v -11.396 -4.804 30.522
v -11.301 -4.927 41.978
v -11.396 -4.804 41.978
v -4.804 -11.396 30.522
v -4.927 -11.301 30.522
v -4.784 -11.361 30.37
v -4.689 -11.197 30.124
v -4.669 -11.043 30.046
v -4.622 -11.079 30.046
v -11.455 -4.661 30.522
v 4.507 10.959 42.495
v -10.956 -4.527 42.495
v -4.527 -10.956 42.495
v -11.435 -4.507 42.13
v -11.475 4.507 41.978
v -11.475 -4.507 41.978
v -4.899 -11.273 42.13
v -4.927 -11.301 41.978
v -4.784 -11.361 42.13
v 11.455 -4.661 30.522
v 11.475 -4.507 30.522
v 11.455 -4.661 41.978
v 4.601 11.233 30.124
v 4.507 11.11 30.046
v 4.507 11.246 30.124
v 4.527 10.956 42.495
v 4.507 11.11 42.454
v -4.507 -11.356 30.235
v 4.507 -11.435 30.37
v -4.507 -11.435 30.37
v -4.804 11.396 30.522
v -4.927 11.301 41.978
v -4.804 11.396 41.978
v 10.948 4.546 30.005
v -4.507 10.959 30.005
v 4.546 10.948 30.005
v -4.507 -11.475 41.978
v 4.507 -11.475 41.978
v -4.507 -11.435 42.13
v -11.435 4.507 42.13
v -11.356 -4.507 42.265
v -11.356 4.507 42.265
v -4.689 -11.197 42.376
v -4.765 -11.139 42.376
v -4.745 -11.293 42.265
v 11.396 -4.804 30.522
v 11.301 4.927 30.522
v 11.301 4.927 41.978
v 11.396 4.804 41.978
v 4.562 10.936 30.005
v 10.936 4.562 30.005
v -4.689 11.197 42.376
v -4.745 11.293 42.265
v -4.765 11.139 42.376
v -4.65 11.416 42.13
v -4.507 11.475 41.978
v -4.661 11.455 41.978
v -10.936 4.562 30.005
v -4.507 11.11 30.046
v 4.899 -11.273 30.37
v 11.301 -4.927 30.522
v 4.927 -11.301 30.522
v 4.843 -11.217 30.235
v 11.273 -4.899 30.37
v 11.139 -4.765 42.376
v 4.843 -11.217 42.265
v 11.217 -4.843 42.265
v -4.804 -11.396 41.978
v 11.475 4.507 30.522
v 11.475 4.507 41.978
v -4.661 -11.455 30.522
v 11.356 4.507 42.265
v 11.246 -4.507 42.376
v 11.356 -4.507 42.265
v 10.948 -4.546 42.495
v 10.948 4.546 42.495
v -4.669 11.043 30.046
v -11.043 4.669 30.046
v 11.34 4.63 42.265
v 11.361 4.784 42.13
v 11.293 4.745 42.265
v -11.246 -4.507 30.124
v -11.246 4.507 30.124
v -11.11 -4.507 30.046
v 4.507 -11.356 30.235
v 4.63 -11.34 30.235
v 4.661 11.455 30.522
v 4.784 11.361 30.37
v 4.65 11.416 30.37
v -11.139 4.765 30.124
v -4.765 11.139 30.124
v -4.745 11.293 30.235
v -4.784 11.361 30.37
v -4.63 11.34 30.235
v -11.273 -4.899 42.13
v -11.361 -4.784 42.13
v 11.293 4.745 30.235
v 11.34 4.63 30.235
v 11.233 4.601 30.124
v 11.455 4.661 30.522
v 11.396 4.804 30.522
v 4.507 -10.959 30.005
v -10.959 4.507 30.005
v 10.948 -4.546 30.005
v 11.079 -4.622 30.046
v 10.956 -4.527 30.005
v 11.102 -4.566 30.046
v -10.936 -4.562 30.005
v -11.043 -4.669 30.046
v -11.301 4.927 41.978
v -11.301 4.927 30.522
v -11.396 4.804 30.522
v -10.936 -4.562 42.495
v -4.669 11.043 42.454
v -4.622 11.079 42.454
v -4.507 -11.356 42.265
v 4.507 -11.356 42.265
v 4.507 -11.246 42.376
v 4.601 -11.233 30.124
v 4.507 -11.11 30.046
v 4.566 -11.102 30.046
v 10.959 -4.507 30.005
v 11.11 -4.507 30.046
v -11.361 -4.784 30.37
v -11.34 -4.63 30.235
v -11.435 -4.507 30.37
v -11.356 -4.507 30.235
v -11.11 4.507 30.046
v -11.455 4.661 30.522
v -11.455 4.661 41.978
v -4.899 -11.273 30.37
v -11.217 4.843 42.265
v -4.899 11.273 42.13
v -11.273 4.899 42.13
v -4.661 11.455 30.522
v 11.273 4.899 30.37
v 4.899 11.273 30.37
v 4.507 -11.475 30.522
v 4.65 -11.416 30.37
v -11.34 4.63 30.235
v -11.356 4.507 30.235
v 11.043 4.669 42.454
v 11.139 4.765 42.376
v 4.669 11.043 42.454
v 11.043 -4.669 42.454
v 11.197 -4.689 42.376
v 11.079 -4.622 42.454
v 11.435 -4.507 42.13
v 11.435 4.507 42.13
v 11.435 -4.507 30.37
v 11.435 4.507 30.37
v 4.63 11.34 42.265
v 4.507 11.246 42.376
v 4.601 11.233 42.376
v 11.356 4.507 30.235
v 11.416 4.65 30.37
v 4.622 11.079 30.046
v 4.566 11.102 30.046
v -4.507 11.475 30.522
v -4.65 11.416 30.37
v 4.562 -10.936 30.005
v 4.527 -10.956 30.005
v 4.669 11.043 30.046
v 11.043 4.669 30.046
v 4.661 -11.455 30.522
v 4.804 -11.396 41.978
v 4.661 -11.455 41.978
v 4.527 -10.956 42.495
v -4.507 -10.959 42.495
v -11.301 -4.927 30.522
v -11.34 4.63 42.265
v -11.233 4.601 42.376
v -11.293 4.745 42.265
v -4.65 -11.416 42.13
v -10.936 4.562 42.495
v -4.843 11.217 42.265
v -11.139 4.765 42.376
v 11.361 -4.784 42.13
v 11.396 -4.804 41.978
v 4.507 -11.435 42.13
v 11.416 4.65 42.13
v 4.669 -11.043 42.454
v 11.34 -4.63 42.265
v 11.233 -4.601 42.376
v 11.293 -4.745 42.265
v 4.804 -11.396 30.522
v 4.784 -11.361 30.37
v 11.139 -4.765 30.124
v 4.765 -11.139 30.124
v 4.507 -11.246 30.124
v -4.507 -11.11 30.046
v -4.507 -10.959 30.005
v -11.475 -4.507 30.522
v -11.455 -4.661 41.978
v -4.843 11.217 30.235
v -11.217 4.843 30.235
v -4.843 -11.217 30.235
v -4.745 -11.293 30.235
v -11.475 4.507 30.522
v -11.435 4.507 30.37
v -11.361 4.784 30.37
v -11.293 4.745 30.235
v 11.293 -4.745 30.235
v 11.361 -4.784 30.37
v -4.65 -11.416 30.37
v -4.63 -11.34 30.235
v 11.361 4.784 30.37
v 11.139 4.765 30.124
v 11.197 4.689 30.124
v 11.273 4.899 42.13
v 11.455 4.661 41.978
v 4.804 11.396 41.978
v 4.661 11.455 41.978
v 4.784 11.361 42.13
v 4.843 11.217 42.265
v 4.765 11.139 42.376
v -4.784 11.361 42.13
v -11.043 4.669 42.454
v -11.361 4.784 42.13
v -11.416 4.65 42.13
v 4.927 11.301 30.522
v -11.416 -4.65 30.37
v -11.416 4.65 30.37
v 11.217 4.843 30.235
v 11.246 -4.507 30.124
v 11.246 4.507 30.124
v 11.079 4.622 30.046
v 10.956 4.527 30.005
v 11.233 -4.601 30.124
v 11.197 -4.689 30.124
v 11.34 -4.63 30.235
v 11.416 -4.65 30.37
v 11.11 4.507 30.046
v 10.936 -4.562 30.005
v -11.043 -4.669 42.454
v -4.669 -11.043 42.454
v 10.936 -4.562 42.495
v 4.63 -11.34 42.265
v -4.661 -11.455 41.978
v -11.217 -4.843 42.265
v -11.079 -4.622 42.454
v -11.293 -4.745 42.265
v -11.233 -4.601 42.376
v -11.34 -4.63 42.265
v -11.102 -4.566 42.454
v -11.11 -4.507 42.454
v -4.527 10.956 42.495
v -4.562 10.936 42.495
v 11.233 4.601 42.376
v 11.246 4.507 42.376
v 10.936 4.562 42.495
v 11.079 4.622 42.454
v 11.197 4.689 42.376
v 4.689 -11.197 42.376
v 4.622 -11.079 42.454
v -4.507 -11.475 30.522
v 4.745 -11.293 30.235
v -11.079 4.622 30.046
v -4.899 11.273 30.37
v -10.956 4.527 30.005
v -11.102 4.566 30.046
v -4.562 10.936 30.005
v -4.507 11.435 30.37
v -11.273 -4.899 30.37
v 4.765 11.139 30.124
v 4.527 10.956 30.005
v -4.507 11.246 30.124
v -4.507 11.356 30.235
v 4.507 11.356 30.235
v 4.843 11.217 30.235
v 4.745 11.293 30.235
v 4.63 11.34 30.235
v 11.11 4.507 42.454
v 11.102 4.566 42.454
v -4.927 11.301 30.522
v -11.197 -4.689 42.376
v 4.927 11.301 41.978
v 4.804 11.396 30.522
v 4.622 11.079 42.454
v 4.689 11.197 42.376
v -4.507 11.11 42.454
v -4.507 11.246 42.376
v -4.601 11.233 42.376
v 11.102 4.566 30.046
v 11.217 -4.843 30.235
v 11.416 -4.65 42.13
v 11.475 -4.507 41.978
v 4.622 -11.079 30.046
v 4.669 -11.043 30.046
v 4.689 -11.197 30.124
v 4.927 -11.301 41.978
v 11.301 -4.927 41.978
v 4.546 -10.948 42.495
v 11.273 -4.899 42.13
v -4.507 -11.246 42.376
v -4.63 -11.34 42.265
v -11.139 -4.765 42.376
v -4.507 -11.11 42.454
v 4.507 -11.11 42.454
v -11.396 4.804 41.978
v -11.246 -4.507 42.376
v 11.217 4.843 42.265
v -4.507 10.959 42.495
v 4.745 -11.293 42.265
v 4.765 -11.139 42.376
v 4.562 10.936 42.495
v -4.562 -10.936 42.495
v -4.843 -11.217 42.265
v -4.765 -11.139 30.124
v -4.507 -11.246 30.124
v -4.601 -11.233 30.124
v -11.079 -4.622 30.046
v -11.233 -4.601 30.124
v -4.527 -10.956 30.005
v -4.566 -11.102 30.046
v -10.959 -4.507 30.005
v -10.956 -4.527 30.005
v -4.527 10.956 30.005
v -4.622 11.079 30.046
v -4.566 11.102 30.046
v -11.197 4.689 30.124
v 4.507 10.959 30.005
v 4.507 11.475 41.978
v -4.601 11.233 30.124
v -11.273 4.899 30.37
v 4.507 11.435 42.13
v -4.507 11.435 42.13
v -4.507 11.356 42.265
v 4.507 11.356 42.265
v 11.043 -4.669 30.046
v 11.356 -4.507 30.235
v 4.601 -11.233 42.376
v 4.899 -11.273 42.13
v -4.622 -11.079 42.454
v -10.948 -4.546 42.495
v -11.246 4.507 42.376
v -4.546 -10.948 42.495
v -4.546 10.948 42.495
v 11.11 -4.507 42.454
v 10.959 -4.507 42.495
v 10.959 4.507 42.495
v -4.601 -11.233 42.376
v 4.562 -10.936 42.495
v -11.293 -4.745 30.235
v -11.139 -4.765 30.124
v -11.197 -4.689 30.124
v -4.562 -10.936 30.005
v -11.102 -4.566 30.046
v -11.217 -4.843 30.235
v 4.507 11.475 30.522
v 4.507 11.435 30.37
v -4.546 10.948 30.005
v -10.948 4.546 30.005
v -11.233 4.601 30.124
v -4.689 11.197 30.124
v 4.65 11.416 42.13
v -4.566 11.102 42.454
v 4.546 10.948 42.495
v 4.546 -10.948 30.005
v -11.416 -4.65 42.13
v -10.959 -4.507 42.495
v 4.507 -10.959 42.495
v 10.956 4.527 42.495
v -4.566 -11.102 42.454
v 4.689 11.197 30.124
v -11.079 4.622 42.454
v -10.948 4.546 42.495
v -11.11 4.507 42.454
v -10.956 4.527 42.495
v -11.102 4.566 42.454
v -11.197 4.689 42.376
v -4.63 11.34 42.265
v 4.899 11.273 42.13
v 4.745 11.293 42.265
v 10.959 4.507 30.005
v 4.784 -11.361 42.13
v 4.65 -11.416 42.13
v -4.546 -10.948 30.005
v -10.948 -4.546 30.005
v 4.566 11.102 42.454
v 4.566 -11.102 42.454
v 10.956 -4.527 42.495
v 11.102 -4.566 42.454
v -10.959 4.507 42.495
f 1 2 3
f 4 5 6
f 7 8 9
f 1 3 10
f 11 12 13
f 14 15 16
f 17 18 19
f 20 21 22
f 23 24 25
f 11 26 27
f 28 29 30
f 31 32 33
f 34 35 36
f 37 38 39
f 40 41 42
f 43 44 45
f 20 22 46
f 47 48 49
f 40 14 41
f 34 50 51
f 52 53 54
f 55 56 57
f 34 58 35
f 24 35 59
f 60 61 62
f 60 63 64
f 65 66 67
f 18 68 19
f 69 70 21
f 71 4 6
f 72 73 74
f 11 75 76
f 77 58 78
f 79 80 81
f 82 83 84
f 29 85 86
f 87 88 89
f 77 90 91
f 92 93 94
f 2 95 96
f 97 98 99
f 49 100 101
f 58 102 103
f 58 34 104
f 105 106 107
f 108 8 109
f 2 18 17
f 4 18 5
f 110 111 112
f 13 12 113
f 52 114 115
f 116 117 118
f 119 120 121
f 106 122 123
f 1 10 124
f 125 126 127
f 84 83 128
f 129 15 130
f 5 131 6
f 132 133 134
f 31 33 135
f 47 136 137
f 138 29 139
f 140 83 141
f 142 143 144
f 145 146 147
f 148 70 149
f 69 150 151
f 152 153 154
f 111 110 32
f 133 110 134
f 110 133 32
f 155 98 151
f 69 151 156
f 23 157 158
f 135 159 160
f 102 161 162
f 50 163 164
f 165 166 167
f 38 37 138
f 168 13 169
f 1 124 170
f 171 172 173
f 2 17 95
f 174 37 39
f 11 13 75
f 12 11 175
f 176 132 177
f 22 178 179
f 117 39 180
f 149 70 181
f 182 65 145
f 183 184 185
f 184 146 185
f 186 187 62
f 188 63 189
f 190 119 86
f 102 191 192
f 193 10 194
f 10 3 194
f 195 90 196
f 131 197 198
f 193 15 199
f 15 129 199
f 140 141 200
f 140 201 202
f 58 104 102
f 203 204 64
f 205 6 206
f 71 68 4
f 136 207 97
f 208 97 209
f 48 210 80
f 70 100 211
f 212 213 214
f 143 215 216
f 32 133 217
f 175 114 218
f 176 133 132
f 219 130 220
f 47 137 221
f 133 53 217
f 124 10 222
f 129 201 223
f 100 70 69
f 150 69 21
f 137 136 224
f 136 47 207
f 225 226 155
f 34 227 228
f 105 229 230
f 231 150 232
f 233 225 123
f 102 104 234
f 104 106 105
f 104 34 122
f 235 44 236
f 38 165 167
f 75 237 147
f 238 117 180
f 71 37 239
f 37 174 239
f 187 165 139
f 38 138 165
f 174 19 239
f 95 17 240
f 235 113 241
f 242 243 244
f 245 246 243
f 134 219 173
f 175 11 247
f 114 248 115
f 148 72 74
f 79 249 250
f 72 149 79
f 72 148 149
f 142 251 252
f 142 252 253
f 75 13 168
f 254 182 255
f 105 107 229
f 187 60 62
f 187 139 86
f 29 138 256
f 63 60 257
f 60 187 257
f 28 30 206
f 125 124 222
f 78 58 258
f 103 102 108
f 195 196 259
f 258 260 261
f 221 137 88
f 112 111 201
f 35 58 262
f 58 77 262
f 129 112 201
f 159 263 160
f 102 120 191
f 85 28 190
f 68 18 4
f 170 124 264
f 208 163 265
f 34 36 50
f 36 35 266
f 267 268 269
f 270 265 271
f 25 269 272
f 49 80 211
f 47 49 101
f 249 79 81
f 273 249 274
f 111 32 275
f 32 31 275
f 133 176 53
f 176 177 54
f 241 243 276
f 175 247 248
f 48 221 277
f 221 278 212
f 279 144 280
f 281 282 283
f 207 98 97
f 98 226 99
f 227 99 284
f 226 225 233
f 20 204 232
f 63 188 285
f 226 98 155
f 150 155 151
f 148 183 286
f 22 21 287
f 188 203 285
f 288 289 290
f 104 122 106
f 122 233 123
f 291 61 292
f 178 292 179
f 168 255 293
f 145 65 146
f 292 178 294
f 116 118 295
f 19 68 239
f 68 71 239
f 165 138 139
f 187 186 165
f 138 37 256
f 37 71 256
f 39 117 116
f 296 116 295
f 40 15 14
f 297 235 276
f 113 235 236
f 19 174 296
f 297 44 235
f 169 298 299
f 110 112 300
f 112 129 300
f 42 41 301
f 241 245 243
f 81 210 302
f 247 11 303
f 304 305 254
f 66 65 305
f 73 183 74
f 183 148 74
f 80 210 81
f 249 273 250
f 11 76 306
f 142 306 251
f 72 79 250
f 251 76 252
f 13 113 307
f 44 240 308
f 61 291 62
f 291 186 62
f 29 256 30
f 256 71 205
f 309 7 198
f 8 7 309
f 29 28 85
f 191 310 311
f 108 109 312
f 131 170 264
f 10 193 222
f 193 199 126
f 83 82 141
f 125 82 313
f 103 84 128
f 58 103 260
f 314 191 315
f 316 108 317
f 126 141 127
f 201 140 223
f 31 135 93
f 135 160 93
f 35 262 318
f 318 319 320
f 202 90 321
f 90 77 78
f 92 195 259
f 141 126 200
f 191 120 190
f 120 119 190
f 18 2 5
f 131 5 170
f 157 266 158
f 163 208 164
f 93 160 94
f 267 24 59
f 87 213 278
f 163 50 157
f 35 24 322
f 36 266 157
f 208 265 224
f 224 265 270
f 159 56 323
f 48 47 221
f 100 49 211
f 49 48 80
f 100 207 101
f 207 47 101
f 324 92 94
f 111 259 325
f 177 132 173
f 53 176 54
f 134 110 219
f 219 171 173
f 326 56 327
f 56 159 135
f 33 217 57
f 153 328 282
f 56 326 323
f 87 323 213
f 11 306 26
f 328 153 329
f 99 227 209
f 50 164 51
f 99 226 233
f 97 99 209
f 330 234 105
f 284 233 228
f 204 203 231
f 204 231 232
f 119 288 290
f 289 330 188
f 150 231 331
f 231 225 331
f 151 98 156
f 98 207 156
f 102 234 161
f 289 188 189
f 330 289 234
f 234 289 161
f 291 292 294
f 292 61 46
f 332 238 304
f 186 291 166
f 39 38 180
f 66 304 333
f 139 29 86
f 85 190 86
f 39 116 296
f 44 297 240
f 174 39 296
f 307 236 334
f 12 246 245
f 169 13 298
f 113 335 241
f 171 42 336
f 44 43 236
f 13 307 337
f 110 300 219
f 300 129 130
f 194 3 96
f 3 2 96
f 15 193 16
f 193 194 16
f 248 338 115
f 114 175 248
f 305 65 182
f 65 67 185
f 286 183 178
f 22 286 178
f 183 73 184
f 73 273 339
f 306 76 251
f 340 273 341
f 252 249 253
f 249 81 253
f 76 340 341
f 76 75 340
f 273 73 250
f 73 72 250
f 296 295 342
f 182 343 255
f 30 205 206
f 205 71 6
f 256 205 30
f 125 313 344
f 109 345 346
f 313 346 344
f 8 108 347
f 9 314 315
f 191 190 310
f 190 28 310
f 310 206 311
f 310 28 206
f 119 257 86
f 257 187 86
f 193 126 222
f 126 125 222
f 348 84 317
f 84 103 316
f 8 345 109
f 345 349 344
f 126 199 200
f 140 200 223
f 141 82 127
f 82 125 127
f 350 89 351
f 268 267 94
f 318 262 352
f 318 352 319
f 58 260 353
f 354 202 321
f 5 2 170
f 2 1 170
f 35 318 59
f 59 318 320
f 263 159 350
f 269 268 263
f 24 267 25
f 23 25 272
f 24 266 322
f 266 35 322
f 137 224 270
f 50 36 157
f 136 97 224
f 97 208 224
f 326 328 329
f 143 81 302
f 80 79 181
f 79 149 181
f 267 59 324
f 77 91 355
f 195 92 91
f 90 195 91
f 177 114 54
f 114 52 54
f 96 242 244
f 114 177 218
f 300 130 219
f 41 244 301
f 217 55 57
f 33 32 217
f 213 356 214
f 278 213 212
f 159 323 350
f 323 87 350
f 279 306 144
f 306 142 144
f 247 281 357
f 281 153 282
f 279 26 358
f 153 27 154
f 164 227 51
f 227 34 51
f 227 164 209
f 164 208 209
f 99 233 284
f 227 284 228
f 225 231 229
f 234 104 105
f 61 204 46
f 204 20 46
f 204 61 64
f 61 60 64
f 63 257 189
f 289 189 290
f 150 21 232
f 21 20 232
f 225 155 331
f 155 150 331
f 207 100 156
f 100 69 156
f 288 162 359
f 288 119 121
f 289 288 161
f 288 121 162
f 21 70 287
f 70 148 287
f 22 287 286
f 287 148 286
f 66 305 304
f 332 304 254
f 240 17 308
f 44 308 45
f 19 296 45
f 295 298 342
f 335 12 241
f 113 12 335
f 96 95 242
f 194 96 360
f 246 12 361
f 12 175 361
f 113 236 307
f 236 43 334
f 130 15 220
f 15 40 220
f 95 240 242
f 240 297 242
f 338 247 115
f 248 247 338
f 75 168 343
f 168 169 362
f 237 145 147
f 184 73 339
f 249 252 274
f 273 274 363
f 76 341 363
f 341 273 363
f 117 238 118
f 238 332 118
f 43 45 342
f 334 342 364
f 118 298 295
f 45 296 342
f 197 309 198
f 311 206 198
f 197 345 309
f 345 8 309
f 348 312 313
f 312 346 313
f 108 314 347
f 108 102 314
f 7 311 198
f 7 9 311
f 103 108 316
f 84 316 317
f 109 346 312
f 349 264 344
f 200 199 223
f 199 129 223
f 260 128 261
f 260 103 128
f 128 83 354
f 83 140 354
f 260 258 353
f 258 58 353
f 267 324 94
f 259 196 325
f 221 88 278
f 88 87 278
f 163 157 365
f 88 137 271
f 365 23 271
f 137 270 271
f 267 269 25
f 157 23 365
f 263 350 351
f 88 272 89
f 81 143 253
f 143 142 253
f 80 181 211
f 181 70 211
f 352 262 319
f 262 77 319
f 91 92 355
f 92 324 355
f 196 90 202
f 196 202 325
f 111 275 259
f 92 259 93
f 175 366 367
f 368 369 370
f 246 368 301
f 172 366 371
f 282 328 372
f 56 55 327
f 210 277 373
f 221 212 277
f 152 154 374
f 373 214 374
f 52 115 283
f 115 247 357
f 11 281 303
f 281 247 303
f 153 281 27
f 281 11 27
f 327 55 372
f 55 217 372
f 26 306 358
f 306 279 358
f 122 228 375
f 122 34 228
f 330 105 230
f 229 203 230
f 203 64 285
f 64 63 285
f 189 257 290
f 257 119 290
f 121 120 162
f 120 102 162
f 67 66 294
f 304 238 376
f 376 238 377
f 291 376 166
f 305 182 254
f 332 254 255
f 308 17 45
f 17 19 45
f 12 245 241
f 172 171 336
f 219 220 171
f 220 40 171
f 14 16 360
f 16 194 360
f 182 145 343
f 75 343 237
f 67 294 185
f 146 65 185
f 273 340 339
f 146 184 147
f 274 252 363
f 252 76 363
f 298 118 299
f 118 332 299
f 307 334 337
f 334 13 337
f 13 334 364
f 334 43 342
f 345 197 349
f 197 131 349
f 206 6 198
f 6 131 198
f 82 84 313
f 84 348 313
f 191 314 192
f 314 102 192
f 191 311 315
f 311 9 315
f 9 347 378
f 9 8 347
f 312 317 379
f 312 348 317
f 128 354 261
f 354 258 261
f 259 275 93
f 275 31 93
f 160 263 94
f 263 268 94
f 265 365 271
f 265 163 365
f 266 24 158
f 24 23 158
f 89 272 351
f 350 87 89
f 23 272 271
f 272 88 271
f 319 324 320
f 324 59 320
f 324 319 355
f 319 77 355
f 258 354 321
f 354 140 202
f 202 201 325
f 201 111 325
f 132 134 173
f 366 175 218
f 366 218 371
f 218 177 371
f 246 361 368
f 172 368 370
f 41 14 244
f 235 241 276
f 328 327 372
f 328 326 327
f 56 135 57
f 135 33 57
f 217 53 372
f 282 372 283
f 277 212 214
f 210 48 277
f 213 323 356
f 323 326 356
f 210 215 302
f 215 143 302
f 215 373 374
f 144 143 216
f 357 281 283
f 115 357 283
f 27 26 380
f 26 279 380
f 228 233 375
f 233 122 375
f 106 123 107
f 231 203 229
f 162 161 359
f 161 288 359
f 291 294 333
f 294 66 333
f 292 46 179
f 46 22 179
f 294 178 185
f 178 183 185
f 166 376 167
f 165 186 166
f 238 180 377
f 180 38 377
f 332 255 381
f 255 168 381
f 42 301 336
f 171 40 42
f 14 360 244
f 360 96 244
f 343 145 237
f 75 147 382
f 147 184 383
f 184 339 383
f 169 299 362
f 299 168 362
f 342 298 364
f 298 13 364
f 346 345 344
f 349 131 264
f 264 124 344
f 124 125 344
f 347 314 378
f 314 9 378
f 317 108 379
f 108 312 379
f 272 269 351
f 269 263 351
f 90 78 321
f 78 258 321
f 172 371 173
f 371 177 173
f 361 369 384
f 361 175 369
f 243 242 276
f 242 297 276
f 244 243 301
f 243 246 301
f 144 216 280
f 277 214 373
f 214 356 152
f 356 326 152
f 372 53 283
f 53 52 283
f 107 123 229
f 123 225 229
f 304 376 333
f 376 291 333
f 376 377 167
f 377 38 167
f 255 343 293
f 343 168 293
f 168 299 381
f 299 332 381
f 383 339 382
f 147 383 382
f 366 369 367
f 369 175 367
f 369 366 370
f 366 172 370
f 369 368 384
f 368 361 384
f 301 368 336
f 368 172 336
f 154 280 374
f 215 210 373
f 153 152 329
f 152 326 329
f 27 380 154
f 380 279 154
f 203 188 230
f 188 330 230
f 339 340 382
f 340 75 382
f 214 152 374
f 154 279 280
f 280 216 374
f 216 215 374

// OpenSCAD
// file: def.scad
round_radius = 0.6;
sticker_margin = 1.2;
sticker_round_radius = 0.4;
cube_size = 60;
disk_height = 12.5;
disk_radius = cube_size / 2;
base_size = cube_size / 2 / sqrt(10 + 7 * sqrt(2));
cut1_dis = base_size * (1 + sqrt(2) / 2);
cut2_dis = cube_size / 2;
inf = cube_size * 10;

module _cube() {
    cube([cube_size - round_radius * 2, cube_size - round_radius * 2, cube_size - round_radius * 2], center = true);
}

module _disk() {
    translate([0, 0, cube_size / 2 + disk_height / 2])
        cylinder(r = disk_radius - round_radius, h = disk_height - round_radius * 2, center = true, $fn = 96);
}

module _int_cut1() {
    translate([-inf, -inf, cut1_dis + round_radius])
        cube([inf * 2, inf * 2, inf]);
}

module _dif_cut1() {
    translate([-inf, -inf, cut1_dis - round_radius])
        cube([inf * 2, inf * 2, inf]);
}

module _sticker_int_cut1() {
    translate([-inf, -inf, cut1_dis + sticker_margin])
        cube([inf * 2, inf * 2, inf]);
}

module _sticker_dif_cut1() {
    translate([-inf, -inf, cut1_dis - sticker_margin])
        cube([inf * 2, inf * 2, inf]);
}

module _int_cut2() {
    translate([-inf, -inf, cut2_dis + round_radius])
        cube([inf * 2, inf * 2, inf]);
}

module _dif_cut2() {
    translate([-inf, -inf, cut2_dis - round_radius])
        cube([inf * 2, inf * 2, inf]);
}

module _sticker_int_cut2() {
    translate([-inf, -inf, cut2_dis + sticker_margin])
        cube([inf * 2, inf * 2, inf]);
}

module _sticker_dif_cut2() {
    translate([-inf, -inf, cut2_dis - sticker_margin])
        cube([inf * 2, inf * 2, inf]);
}

module _sticker_cube() {
    translate([-cube_size / 2 + sticker_margin, -cube_size / 2 + sticker_margin, cube_size / 2 - 0.05])
        cube([cube_size - sticker_margin * 2, cube_size - sticker_margin * 2, 0.1]);
}

module _sticker_disk() {
    translate([0, 0, cube_size / 2 + disk_height - 0.05])
        cylinder(r = disk_radius - sticker_margin, h = 0.1, center = true, $fn = 96);
}
// main file
include <def.scad>

module block_1() {
    minkowski() {
        difference() {
            _disk();
            for (deg = [0 : 45 : 315])
                rotate([90, 0, deg])
                    _dif_cut1();
        }
        sphere(r = round_radius, $fn = 24);
    }
}

block_1();
